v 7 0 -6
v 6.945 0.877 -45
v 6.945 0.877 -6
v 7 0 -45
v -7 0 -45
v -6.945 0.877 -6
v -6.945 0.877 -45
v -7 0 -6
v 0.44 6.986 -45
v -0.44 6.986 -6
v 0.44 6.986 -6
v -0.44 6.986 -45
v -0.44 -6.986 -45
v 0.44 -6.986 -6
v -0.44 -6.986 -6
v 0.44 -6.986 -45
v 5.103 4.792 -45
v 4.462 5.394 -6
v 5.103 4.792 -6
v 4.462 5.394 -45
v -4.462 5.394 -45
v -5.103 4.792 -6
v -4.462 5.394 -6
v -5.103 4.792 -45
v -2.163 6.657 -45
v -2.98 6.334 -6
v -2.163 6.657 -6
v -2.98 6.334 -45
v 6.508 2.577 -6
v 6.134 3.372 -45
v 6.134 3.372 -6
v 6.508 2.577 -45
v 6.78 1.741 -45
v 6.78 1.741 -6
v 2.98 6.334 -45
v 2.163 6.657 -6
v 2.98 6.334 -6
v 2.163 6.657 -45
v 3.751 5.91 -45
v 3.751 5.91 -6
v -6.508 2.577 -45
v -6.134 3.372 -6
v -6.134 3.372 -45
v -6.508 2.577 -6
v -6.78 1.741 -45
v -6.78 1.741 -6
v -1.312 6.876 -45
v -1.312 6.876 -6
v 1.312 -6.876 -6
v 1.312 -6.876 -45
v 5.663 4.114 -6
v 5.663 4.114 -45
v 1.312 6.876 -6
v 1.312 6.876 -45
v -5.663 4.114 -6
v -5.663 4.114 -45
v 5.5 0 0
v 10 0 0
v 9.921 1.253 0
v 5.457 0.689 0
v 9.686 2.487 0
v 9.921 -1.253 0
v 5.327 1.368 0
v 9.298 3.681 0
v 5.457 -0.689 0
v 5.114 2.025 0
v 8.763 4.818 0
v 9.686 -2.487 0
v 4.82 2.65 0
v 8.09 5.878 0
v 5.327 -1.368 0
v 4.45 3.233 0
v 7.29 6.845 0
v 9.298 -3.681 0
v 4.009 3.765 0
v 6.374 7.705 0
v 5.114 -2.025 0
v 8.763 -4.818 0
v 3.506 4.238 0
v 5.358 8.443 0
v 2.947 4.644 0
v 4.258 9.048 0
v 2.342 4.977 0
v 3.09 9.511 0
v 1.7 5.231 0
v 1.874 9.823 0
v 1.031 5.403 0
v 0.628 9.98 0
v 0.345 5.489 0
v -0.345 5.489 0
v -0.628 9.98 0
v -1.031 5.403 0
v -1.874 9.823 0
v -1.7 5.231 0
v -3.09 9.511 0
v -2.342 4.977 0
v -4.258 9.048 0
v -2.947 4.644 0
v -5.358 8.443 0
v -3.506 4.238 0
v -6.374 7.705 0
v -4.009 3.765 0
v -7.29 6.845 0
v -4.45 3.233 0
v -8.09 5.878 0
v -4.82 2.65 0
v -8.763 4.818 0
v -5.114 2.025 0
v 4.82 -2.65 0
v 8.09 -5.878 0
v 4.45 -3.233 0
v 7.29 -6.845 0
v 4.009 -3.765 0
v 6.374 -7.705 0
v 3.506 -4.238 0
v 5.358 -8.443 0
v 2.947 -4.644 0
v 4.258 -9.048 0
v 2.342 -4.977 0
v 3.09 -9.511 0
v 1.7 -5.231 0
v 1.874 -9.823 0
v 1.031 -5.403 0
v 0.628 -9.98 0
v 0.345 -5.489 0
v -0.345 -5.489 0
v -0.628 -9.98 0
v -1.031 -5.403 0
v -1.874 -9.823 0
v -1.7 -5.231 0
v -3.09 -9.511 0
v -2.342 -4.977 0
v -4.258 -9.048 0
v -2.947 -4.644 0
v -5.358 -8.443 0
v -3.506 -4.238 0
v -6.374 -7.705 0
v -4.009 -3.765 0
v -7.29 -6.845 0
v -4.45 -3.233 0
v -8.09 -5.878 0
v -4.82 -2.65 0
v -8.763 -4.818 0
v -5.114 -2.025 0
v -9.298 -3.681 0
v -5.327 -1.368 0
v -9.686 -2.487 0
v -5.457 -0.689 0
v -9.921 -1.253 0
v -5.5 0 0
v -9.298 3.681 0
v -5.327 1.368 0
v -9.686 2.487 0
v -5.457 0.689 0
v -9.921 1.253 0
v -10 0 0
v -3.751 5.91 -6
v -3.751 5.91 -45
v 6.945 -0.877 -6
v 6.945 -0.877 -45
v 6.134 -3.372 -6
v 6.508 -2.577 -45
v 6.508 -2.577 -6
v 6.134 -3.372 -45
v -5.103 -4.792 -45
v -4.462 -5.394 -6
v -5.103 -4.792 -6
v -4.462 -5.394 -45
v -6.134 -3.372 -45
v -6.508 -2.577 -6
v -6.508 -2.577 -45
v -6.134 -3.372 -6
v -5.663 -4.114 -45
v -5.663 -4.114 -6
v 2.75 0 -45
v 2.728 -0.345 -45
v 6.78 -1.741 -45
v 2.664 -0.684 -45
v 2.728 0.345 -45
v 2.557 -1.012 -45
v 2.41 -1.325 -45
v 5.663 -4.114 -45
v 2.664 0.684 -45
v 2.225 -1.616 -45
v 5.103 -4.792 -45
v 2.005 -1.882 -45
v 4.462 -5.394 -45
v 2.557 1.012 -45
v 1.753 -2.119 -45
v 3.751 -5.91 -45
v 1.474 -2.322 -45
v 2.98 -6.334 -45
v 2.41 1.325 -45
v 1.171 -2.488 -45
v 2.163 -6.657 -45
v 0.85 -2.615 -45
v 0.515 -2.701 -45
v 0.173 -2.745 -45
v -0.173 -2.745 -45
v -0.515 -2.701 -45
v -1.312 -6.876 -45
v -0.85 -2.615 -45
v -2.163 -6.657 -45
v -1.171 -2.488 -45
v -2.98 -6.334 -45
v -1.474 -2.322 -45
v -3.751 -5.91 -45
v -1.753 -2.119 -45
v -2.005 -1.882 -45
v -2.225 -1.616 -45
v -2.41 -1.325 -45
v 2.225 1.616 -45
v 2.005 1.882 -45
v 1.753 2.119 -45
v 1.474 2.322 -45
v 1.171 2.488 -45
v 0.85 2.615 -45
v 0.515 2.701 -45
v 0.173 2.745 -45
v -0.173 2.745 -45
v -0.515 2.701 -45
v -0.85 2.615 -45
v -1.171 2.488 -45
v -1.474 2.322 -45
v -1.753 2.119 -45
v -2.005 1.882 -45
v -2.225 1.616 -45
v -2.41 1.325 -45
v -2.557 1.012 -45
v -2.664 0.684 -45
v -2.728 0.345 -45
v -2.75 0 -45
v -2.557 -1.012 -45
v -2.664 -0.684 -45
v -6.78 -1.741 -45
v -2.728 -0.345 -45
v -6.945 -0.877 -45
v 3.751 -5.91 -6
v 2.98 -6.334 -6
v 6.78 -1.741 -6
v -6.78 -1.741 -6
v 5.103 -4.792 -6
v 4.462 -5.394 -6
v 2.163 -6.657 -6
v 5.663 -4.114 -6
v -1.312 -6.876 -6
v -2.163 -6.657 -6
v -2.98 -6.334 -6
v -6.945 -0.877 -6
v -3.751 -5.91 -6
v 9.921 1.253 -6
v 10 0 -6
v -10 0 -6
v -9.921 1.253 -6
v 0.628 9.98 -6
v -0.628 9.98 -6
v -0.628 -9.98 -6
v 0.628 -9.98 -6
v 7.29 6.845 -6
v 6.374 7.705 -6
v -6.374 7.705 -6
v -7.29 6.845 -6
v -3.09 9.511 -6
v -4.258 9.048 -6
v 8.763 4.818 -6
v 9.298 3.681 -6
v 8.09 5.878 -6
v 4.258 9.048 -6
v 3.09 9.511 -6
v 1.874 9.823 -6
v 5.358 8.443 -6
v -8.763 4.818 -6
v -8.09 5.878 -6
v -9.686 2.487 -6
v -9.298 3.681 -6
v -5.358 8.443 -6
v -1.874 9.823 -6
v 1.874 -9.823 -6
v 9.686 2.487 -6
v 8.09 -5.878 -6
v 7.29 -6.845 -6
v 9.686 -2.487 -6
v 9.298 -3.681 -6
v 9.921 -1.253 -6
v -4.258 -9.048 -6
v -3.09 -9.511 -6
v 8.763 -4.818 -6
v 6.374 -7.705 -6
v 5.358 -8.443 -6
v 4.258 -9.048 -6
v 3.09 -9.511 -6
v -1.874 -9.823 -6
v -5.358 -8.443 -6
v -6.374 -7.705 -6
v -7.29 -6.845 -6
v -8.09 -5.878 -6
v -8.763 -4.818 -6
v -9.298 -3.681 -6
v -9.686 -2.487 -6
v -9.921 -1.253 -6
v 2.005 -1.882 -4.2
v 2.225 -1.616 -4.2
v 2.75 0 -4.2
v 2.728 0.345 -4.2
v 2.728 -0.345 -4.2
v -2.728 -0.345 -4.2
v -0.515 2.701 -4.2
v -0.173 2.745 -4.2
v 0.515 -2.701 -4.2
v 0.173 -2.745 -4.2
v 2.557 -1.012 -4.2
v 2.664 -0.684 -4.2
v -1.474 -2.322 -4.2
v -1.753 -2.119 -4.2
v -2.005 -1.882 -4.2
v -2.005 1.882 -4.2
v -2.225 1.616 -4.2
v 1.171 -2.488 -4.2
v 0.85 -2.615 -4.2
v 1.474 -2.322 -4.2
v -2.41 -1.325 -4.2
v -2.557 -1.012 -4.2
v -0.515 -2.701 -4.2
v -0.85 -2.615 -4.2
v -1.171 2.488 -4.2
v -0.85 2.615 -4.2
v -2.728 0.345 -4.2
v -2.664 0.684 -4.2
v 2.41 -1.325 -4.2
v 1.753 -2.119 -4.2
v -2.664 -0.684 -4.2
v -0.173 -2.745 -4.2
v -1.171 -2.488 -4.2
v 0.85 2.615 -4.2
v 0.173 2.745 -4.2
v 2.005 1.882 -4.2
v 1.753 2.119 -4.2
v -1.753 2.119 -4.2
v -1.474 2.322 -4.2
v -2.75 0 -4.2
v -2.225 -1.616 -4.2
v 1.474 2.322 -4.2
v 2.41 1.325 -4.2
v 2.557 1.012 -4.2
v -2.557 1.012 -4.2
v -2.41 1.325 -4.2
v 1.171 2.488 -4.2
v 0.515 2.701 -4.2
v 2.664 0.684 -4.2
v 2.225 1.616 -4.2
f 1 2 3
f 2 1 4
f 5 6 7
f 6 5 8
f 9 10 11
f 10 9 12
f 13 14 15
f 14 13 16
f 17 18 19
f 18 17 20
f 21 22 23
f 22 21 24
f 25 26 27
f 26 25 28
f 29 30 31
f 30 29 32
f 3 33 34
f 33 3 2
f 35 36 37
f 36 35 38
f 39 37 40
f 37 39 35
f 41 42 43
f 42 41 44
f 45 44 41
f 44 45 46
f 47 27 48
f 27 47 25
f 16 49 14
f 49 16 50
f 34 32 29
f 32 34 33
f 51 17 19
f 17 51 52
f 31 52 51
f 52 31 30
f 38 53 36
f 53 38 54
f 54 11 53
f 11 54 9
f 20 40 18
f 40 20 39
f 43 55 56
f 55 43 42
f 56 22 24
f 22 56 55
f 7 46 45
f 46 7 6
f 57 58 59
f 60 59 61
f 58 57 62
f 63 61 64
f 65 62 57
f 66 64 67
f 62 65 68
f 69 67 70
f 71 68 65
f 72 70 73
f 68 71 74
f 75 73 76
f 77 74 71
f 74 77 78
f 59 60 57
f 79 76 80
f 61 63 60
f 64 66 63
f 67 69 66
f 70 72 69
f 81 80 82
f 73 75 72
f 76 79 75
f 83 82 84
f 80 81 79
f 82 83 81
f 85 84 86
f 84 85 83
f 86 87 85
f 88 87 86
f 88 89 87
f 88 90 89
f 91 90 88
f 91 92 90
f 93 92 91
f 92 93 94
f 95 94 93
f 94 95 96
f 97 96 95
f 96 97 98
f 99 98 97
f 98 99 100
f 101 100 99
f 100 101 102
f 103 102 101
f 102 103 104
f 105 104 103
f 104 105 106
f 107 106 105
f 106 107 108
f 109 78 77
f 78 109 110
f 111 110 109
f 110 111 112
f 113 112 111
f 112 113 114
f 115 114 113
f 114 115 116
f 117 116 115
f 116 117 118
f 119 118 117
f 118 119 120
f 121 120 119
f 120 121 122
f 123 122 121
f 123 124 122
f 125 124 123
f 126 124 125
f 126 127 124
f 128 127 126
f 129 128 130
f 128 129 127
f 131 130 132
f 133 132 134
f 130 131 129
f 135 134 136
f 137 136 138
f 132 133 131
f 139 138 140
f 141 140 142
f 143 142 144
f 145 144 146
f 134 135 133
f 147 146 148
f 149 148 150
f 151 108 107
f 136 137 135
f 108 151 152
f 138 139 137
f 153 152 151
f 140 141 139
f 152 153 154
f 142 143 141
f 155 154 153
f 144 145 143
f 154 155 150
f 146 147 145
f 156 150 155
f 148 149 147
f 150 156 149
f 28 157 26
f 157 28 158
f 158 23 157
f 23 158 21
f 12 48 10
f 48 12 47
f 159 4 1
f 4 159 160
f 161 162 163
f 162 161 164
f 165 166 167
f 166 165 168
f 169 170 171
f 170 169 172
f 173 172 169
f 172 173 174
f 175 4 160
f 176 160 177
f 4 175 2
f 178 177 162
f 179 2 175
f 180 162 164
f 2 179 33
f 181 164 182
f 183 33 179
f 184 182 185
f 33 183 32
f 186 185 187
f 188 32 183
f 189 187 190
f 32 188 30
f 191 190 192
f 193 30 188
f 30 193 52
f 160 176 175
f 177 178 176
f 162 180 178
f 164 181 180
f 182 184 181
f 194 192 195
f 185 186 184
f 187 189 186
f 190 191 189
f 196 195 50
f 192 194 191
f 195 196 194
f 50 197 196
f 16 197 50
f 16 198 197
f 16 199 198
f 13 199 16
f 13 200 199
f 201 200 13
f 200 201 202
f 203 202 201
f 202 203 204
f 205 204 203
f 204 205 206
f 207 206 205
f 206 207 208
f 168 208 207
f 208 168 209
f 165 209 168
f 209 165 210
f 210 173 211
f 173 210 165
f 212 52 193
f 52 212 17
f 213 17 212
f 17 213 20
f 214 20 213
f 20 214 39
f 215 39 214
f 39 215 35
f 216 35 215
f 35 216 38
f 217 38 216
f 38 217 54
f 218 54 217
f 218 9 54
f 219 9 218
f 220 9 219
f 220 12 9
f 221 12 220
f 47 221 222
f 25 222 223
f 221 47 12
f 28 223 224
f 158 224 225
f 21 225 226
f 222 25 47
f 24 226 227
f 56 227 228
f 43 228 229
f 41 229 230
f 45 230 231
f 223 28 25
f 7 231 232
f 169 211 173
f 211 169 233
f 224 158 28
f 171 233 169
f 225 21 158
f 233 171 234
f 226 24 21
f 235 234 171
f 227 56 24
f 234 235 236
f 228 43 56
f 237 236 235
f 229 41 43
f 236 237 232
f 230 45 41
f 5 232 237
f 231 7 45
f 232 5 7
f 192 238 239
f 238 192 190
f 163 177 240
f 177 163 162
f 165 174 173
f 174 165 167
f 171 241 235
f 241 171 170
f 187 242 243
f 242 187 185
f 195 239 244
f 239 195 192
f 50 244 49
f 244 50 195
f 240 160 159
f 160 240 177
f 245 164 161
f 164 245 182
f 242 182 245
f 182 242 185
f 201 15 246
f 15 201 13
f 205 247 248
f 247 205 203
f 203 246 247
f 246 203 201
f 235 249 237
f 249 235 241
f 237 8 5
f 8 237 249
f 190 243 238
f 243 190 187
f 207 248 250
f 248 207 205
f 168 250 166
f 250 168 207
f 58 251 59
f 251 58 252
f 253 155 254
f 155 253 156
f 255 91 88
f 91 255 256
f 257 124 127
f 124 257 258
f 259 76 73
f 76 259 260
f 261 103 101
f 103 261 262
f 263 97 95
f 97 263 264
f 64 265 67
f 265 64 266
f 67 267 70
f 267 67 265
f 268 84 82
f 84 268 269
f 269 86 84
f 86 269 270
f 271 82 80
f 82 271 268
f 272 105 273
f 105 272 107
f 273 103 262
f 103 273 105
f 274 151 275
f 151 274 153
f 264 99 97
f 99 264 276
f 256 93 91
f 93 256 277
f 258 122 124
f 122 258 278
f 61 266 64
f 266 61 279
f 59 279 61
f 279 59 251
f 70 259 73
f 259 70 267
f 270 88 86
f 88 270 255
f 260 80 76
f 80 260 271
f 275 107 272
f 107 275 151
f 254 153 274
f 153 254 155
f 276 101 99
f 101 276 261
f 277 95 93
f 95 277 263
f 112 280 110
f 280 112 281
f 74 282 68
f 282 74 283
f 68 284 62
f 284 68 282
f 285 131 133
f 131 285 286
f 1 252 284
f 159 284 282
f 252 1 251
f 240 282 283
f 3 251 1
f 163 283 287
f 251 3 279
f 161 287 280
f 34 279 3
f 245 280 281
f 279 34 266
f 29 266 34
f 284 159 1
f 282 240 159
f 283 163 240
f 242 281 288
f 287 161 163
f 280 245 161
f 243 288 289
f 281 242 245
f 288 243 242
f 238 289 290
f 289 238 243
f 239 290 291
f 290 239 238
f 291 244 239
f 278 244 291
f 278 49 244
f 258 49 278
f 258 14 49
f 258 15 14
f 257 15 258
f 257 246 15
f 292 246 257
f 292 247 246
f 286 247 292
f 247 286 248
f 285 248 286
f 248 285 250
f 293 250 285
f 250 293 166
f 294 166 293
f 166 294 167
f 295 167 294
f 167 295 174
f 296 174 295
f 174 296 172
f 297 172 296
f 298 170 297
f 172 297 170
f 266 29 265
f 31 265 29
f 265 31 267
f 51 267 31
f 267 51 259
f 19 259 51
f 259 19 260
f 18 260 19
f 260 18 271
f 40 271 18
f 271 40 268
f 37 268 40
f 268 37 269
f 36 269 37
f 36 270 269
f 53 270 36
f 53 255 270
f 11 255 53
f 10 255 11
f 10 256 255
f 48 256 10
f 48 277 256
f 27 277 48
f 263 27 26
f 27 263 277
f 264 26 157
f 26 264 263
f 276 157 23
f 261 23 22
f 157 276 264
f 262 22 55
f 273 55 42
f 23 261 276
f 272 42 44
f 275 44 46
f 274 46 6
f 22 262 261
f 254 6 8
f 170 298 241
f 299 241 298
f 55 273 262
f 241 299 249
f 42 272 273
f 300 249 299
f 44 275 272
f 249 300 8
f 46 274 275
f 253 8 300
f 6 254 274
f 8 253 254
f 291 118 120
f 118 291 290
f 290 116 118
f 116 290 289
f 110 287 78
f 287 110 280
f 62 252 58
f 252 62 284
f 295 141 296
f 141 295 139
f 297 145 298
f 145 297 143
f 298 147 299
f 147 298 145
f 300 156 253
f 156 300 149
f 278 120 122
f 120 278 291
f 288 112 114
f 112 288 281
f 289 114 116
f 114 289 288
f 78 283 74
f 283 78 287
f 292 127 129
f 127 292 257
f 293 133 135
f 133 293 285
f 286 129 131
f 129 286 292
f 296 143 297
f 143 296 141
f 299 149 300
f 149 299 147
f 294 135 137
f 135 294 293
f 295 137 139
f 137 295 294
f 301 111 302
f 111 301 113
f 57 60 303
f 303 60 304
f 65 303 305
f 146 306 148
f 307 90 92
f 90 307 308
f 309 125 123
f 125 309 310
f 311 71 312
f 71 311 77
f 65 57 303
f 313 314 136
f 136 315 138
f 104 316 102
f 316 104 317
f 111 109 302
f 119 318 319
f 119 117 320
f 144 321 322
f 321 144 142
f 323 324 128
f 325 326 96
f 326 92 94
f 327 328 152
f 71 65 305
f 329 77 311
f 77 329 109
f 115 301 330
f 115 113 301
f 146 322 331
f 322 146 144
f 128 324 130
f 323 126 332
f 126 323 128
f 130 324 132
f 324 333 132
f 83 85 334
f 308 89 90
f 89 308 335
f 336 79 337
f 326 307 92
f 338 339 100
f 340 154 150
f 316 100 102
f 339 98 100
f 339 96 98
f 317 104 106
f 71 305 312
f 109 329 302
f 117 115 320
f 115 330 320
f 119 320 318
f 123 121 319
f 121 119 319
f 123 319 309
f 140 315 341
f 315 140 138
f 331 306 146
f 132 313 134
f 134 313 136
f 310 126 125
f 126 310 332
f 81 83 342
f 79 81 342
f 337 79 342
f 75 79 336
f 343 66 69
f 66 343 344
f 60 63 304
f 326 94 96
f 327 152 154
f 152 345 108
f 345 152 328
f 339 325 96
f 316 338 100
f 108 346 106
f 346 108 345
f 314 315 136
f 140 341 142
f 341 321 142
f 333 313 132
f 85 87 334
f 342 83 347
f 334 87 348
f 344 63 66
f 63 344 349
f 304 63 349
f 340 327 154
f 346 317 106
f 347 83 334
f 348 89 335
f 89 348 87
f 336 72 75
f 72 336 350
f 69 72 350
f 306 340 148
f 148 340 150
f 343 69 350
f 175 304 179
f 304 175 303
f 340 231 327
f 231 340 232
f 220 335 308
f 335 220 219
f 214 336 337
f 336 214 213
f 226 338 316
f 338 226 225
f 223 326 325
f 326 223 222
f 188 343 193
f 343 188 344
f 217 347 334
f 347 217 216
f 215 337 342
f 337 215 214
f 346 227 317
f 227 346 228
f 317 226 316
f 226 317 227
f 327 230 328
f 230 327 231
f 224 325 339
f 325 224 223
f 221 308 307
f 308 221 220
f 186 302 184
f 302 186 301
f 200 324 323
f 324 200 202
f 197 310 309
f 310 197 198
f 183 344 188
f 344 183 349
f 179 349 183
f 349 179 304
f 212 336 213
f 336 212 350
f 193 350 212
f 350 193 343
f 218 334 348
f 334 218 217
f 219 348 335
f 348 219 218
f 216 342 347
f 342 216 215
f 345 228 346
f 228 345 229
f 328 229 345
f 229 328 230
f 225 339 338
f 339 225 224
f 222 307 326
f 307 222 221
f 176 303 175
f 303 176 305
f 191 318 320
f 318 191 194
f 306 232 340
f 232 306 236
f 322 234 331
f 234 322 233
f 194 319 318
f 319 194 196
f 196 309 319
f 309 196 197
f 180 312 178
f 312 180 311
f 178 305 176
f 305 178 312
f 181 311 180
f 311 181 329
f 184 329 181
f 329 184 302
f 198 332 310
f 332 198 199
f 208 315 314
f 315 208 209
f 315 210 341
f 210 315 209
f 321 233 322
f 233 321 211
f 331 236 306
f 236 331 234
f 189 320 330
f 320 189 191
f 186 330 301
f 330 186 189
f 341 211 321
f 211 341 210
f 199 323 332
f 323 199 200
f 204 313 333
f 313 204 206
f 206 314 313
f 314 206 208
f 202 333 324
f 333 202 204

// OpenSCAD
$fn = 50;


difference() {
	union() {
		translate(v = [0, 0, -45.0000000000]) {
			cylinder(h = 45, r = 7.0000000000);
		}
		translate(v = [0, 0, -6.0000000000]) {
			cylinder(h = 6, r = 10.0000000000);
		}
	}
	union() {
		translate(v = [0, 0, 0]) {
			rotate(a = [0, 0, 0]) {
				difference() {
					union() {
						#translate(v = [0, 0, -45.0000000000]) {
							cylinder(h = 45, r = 2.2500000000);
						}
						#translate(v = [0, 0, -4.2000000000]) {
							cylinder(h = 4.2000000000, r1 = 2.7500000000, r2 = 5.5000000000);
						}
						#translate(v = [0, 0, -45.0000000000]) {
							cylinder(h = 45, r = 2.7500000000);
						}
						#translate(v = [0, 0, -45.0000000000]) {
							cylinder(h = 45, r = 2.2500000000);
						}
					}
					union();
				}
			}
		}
	}
}
